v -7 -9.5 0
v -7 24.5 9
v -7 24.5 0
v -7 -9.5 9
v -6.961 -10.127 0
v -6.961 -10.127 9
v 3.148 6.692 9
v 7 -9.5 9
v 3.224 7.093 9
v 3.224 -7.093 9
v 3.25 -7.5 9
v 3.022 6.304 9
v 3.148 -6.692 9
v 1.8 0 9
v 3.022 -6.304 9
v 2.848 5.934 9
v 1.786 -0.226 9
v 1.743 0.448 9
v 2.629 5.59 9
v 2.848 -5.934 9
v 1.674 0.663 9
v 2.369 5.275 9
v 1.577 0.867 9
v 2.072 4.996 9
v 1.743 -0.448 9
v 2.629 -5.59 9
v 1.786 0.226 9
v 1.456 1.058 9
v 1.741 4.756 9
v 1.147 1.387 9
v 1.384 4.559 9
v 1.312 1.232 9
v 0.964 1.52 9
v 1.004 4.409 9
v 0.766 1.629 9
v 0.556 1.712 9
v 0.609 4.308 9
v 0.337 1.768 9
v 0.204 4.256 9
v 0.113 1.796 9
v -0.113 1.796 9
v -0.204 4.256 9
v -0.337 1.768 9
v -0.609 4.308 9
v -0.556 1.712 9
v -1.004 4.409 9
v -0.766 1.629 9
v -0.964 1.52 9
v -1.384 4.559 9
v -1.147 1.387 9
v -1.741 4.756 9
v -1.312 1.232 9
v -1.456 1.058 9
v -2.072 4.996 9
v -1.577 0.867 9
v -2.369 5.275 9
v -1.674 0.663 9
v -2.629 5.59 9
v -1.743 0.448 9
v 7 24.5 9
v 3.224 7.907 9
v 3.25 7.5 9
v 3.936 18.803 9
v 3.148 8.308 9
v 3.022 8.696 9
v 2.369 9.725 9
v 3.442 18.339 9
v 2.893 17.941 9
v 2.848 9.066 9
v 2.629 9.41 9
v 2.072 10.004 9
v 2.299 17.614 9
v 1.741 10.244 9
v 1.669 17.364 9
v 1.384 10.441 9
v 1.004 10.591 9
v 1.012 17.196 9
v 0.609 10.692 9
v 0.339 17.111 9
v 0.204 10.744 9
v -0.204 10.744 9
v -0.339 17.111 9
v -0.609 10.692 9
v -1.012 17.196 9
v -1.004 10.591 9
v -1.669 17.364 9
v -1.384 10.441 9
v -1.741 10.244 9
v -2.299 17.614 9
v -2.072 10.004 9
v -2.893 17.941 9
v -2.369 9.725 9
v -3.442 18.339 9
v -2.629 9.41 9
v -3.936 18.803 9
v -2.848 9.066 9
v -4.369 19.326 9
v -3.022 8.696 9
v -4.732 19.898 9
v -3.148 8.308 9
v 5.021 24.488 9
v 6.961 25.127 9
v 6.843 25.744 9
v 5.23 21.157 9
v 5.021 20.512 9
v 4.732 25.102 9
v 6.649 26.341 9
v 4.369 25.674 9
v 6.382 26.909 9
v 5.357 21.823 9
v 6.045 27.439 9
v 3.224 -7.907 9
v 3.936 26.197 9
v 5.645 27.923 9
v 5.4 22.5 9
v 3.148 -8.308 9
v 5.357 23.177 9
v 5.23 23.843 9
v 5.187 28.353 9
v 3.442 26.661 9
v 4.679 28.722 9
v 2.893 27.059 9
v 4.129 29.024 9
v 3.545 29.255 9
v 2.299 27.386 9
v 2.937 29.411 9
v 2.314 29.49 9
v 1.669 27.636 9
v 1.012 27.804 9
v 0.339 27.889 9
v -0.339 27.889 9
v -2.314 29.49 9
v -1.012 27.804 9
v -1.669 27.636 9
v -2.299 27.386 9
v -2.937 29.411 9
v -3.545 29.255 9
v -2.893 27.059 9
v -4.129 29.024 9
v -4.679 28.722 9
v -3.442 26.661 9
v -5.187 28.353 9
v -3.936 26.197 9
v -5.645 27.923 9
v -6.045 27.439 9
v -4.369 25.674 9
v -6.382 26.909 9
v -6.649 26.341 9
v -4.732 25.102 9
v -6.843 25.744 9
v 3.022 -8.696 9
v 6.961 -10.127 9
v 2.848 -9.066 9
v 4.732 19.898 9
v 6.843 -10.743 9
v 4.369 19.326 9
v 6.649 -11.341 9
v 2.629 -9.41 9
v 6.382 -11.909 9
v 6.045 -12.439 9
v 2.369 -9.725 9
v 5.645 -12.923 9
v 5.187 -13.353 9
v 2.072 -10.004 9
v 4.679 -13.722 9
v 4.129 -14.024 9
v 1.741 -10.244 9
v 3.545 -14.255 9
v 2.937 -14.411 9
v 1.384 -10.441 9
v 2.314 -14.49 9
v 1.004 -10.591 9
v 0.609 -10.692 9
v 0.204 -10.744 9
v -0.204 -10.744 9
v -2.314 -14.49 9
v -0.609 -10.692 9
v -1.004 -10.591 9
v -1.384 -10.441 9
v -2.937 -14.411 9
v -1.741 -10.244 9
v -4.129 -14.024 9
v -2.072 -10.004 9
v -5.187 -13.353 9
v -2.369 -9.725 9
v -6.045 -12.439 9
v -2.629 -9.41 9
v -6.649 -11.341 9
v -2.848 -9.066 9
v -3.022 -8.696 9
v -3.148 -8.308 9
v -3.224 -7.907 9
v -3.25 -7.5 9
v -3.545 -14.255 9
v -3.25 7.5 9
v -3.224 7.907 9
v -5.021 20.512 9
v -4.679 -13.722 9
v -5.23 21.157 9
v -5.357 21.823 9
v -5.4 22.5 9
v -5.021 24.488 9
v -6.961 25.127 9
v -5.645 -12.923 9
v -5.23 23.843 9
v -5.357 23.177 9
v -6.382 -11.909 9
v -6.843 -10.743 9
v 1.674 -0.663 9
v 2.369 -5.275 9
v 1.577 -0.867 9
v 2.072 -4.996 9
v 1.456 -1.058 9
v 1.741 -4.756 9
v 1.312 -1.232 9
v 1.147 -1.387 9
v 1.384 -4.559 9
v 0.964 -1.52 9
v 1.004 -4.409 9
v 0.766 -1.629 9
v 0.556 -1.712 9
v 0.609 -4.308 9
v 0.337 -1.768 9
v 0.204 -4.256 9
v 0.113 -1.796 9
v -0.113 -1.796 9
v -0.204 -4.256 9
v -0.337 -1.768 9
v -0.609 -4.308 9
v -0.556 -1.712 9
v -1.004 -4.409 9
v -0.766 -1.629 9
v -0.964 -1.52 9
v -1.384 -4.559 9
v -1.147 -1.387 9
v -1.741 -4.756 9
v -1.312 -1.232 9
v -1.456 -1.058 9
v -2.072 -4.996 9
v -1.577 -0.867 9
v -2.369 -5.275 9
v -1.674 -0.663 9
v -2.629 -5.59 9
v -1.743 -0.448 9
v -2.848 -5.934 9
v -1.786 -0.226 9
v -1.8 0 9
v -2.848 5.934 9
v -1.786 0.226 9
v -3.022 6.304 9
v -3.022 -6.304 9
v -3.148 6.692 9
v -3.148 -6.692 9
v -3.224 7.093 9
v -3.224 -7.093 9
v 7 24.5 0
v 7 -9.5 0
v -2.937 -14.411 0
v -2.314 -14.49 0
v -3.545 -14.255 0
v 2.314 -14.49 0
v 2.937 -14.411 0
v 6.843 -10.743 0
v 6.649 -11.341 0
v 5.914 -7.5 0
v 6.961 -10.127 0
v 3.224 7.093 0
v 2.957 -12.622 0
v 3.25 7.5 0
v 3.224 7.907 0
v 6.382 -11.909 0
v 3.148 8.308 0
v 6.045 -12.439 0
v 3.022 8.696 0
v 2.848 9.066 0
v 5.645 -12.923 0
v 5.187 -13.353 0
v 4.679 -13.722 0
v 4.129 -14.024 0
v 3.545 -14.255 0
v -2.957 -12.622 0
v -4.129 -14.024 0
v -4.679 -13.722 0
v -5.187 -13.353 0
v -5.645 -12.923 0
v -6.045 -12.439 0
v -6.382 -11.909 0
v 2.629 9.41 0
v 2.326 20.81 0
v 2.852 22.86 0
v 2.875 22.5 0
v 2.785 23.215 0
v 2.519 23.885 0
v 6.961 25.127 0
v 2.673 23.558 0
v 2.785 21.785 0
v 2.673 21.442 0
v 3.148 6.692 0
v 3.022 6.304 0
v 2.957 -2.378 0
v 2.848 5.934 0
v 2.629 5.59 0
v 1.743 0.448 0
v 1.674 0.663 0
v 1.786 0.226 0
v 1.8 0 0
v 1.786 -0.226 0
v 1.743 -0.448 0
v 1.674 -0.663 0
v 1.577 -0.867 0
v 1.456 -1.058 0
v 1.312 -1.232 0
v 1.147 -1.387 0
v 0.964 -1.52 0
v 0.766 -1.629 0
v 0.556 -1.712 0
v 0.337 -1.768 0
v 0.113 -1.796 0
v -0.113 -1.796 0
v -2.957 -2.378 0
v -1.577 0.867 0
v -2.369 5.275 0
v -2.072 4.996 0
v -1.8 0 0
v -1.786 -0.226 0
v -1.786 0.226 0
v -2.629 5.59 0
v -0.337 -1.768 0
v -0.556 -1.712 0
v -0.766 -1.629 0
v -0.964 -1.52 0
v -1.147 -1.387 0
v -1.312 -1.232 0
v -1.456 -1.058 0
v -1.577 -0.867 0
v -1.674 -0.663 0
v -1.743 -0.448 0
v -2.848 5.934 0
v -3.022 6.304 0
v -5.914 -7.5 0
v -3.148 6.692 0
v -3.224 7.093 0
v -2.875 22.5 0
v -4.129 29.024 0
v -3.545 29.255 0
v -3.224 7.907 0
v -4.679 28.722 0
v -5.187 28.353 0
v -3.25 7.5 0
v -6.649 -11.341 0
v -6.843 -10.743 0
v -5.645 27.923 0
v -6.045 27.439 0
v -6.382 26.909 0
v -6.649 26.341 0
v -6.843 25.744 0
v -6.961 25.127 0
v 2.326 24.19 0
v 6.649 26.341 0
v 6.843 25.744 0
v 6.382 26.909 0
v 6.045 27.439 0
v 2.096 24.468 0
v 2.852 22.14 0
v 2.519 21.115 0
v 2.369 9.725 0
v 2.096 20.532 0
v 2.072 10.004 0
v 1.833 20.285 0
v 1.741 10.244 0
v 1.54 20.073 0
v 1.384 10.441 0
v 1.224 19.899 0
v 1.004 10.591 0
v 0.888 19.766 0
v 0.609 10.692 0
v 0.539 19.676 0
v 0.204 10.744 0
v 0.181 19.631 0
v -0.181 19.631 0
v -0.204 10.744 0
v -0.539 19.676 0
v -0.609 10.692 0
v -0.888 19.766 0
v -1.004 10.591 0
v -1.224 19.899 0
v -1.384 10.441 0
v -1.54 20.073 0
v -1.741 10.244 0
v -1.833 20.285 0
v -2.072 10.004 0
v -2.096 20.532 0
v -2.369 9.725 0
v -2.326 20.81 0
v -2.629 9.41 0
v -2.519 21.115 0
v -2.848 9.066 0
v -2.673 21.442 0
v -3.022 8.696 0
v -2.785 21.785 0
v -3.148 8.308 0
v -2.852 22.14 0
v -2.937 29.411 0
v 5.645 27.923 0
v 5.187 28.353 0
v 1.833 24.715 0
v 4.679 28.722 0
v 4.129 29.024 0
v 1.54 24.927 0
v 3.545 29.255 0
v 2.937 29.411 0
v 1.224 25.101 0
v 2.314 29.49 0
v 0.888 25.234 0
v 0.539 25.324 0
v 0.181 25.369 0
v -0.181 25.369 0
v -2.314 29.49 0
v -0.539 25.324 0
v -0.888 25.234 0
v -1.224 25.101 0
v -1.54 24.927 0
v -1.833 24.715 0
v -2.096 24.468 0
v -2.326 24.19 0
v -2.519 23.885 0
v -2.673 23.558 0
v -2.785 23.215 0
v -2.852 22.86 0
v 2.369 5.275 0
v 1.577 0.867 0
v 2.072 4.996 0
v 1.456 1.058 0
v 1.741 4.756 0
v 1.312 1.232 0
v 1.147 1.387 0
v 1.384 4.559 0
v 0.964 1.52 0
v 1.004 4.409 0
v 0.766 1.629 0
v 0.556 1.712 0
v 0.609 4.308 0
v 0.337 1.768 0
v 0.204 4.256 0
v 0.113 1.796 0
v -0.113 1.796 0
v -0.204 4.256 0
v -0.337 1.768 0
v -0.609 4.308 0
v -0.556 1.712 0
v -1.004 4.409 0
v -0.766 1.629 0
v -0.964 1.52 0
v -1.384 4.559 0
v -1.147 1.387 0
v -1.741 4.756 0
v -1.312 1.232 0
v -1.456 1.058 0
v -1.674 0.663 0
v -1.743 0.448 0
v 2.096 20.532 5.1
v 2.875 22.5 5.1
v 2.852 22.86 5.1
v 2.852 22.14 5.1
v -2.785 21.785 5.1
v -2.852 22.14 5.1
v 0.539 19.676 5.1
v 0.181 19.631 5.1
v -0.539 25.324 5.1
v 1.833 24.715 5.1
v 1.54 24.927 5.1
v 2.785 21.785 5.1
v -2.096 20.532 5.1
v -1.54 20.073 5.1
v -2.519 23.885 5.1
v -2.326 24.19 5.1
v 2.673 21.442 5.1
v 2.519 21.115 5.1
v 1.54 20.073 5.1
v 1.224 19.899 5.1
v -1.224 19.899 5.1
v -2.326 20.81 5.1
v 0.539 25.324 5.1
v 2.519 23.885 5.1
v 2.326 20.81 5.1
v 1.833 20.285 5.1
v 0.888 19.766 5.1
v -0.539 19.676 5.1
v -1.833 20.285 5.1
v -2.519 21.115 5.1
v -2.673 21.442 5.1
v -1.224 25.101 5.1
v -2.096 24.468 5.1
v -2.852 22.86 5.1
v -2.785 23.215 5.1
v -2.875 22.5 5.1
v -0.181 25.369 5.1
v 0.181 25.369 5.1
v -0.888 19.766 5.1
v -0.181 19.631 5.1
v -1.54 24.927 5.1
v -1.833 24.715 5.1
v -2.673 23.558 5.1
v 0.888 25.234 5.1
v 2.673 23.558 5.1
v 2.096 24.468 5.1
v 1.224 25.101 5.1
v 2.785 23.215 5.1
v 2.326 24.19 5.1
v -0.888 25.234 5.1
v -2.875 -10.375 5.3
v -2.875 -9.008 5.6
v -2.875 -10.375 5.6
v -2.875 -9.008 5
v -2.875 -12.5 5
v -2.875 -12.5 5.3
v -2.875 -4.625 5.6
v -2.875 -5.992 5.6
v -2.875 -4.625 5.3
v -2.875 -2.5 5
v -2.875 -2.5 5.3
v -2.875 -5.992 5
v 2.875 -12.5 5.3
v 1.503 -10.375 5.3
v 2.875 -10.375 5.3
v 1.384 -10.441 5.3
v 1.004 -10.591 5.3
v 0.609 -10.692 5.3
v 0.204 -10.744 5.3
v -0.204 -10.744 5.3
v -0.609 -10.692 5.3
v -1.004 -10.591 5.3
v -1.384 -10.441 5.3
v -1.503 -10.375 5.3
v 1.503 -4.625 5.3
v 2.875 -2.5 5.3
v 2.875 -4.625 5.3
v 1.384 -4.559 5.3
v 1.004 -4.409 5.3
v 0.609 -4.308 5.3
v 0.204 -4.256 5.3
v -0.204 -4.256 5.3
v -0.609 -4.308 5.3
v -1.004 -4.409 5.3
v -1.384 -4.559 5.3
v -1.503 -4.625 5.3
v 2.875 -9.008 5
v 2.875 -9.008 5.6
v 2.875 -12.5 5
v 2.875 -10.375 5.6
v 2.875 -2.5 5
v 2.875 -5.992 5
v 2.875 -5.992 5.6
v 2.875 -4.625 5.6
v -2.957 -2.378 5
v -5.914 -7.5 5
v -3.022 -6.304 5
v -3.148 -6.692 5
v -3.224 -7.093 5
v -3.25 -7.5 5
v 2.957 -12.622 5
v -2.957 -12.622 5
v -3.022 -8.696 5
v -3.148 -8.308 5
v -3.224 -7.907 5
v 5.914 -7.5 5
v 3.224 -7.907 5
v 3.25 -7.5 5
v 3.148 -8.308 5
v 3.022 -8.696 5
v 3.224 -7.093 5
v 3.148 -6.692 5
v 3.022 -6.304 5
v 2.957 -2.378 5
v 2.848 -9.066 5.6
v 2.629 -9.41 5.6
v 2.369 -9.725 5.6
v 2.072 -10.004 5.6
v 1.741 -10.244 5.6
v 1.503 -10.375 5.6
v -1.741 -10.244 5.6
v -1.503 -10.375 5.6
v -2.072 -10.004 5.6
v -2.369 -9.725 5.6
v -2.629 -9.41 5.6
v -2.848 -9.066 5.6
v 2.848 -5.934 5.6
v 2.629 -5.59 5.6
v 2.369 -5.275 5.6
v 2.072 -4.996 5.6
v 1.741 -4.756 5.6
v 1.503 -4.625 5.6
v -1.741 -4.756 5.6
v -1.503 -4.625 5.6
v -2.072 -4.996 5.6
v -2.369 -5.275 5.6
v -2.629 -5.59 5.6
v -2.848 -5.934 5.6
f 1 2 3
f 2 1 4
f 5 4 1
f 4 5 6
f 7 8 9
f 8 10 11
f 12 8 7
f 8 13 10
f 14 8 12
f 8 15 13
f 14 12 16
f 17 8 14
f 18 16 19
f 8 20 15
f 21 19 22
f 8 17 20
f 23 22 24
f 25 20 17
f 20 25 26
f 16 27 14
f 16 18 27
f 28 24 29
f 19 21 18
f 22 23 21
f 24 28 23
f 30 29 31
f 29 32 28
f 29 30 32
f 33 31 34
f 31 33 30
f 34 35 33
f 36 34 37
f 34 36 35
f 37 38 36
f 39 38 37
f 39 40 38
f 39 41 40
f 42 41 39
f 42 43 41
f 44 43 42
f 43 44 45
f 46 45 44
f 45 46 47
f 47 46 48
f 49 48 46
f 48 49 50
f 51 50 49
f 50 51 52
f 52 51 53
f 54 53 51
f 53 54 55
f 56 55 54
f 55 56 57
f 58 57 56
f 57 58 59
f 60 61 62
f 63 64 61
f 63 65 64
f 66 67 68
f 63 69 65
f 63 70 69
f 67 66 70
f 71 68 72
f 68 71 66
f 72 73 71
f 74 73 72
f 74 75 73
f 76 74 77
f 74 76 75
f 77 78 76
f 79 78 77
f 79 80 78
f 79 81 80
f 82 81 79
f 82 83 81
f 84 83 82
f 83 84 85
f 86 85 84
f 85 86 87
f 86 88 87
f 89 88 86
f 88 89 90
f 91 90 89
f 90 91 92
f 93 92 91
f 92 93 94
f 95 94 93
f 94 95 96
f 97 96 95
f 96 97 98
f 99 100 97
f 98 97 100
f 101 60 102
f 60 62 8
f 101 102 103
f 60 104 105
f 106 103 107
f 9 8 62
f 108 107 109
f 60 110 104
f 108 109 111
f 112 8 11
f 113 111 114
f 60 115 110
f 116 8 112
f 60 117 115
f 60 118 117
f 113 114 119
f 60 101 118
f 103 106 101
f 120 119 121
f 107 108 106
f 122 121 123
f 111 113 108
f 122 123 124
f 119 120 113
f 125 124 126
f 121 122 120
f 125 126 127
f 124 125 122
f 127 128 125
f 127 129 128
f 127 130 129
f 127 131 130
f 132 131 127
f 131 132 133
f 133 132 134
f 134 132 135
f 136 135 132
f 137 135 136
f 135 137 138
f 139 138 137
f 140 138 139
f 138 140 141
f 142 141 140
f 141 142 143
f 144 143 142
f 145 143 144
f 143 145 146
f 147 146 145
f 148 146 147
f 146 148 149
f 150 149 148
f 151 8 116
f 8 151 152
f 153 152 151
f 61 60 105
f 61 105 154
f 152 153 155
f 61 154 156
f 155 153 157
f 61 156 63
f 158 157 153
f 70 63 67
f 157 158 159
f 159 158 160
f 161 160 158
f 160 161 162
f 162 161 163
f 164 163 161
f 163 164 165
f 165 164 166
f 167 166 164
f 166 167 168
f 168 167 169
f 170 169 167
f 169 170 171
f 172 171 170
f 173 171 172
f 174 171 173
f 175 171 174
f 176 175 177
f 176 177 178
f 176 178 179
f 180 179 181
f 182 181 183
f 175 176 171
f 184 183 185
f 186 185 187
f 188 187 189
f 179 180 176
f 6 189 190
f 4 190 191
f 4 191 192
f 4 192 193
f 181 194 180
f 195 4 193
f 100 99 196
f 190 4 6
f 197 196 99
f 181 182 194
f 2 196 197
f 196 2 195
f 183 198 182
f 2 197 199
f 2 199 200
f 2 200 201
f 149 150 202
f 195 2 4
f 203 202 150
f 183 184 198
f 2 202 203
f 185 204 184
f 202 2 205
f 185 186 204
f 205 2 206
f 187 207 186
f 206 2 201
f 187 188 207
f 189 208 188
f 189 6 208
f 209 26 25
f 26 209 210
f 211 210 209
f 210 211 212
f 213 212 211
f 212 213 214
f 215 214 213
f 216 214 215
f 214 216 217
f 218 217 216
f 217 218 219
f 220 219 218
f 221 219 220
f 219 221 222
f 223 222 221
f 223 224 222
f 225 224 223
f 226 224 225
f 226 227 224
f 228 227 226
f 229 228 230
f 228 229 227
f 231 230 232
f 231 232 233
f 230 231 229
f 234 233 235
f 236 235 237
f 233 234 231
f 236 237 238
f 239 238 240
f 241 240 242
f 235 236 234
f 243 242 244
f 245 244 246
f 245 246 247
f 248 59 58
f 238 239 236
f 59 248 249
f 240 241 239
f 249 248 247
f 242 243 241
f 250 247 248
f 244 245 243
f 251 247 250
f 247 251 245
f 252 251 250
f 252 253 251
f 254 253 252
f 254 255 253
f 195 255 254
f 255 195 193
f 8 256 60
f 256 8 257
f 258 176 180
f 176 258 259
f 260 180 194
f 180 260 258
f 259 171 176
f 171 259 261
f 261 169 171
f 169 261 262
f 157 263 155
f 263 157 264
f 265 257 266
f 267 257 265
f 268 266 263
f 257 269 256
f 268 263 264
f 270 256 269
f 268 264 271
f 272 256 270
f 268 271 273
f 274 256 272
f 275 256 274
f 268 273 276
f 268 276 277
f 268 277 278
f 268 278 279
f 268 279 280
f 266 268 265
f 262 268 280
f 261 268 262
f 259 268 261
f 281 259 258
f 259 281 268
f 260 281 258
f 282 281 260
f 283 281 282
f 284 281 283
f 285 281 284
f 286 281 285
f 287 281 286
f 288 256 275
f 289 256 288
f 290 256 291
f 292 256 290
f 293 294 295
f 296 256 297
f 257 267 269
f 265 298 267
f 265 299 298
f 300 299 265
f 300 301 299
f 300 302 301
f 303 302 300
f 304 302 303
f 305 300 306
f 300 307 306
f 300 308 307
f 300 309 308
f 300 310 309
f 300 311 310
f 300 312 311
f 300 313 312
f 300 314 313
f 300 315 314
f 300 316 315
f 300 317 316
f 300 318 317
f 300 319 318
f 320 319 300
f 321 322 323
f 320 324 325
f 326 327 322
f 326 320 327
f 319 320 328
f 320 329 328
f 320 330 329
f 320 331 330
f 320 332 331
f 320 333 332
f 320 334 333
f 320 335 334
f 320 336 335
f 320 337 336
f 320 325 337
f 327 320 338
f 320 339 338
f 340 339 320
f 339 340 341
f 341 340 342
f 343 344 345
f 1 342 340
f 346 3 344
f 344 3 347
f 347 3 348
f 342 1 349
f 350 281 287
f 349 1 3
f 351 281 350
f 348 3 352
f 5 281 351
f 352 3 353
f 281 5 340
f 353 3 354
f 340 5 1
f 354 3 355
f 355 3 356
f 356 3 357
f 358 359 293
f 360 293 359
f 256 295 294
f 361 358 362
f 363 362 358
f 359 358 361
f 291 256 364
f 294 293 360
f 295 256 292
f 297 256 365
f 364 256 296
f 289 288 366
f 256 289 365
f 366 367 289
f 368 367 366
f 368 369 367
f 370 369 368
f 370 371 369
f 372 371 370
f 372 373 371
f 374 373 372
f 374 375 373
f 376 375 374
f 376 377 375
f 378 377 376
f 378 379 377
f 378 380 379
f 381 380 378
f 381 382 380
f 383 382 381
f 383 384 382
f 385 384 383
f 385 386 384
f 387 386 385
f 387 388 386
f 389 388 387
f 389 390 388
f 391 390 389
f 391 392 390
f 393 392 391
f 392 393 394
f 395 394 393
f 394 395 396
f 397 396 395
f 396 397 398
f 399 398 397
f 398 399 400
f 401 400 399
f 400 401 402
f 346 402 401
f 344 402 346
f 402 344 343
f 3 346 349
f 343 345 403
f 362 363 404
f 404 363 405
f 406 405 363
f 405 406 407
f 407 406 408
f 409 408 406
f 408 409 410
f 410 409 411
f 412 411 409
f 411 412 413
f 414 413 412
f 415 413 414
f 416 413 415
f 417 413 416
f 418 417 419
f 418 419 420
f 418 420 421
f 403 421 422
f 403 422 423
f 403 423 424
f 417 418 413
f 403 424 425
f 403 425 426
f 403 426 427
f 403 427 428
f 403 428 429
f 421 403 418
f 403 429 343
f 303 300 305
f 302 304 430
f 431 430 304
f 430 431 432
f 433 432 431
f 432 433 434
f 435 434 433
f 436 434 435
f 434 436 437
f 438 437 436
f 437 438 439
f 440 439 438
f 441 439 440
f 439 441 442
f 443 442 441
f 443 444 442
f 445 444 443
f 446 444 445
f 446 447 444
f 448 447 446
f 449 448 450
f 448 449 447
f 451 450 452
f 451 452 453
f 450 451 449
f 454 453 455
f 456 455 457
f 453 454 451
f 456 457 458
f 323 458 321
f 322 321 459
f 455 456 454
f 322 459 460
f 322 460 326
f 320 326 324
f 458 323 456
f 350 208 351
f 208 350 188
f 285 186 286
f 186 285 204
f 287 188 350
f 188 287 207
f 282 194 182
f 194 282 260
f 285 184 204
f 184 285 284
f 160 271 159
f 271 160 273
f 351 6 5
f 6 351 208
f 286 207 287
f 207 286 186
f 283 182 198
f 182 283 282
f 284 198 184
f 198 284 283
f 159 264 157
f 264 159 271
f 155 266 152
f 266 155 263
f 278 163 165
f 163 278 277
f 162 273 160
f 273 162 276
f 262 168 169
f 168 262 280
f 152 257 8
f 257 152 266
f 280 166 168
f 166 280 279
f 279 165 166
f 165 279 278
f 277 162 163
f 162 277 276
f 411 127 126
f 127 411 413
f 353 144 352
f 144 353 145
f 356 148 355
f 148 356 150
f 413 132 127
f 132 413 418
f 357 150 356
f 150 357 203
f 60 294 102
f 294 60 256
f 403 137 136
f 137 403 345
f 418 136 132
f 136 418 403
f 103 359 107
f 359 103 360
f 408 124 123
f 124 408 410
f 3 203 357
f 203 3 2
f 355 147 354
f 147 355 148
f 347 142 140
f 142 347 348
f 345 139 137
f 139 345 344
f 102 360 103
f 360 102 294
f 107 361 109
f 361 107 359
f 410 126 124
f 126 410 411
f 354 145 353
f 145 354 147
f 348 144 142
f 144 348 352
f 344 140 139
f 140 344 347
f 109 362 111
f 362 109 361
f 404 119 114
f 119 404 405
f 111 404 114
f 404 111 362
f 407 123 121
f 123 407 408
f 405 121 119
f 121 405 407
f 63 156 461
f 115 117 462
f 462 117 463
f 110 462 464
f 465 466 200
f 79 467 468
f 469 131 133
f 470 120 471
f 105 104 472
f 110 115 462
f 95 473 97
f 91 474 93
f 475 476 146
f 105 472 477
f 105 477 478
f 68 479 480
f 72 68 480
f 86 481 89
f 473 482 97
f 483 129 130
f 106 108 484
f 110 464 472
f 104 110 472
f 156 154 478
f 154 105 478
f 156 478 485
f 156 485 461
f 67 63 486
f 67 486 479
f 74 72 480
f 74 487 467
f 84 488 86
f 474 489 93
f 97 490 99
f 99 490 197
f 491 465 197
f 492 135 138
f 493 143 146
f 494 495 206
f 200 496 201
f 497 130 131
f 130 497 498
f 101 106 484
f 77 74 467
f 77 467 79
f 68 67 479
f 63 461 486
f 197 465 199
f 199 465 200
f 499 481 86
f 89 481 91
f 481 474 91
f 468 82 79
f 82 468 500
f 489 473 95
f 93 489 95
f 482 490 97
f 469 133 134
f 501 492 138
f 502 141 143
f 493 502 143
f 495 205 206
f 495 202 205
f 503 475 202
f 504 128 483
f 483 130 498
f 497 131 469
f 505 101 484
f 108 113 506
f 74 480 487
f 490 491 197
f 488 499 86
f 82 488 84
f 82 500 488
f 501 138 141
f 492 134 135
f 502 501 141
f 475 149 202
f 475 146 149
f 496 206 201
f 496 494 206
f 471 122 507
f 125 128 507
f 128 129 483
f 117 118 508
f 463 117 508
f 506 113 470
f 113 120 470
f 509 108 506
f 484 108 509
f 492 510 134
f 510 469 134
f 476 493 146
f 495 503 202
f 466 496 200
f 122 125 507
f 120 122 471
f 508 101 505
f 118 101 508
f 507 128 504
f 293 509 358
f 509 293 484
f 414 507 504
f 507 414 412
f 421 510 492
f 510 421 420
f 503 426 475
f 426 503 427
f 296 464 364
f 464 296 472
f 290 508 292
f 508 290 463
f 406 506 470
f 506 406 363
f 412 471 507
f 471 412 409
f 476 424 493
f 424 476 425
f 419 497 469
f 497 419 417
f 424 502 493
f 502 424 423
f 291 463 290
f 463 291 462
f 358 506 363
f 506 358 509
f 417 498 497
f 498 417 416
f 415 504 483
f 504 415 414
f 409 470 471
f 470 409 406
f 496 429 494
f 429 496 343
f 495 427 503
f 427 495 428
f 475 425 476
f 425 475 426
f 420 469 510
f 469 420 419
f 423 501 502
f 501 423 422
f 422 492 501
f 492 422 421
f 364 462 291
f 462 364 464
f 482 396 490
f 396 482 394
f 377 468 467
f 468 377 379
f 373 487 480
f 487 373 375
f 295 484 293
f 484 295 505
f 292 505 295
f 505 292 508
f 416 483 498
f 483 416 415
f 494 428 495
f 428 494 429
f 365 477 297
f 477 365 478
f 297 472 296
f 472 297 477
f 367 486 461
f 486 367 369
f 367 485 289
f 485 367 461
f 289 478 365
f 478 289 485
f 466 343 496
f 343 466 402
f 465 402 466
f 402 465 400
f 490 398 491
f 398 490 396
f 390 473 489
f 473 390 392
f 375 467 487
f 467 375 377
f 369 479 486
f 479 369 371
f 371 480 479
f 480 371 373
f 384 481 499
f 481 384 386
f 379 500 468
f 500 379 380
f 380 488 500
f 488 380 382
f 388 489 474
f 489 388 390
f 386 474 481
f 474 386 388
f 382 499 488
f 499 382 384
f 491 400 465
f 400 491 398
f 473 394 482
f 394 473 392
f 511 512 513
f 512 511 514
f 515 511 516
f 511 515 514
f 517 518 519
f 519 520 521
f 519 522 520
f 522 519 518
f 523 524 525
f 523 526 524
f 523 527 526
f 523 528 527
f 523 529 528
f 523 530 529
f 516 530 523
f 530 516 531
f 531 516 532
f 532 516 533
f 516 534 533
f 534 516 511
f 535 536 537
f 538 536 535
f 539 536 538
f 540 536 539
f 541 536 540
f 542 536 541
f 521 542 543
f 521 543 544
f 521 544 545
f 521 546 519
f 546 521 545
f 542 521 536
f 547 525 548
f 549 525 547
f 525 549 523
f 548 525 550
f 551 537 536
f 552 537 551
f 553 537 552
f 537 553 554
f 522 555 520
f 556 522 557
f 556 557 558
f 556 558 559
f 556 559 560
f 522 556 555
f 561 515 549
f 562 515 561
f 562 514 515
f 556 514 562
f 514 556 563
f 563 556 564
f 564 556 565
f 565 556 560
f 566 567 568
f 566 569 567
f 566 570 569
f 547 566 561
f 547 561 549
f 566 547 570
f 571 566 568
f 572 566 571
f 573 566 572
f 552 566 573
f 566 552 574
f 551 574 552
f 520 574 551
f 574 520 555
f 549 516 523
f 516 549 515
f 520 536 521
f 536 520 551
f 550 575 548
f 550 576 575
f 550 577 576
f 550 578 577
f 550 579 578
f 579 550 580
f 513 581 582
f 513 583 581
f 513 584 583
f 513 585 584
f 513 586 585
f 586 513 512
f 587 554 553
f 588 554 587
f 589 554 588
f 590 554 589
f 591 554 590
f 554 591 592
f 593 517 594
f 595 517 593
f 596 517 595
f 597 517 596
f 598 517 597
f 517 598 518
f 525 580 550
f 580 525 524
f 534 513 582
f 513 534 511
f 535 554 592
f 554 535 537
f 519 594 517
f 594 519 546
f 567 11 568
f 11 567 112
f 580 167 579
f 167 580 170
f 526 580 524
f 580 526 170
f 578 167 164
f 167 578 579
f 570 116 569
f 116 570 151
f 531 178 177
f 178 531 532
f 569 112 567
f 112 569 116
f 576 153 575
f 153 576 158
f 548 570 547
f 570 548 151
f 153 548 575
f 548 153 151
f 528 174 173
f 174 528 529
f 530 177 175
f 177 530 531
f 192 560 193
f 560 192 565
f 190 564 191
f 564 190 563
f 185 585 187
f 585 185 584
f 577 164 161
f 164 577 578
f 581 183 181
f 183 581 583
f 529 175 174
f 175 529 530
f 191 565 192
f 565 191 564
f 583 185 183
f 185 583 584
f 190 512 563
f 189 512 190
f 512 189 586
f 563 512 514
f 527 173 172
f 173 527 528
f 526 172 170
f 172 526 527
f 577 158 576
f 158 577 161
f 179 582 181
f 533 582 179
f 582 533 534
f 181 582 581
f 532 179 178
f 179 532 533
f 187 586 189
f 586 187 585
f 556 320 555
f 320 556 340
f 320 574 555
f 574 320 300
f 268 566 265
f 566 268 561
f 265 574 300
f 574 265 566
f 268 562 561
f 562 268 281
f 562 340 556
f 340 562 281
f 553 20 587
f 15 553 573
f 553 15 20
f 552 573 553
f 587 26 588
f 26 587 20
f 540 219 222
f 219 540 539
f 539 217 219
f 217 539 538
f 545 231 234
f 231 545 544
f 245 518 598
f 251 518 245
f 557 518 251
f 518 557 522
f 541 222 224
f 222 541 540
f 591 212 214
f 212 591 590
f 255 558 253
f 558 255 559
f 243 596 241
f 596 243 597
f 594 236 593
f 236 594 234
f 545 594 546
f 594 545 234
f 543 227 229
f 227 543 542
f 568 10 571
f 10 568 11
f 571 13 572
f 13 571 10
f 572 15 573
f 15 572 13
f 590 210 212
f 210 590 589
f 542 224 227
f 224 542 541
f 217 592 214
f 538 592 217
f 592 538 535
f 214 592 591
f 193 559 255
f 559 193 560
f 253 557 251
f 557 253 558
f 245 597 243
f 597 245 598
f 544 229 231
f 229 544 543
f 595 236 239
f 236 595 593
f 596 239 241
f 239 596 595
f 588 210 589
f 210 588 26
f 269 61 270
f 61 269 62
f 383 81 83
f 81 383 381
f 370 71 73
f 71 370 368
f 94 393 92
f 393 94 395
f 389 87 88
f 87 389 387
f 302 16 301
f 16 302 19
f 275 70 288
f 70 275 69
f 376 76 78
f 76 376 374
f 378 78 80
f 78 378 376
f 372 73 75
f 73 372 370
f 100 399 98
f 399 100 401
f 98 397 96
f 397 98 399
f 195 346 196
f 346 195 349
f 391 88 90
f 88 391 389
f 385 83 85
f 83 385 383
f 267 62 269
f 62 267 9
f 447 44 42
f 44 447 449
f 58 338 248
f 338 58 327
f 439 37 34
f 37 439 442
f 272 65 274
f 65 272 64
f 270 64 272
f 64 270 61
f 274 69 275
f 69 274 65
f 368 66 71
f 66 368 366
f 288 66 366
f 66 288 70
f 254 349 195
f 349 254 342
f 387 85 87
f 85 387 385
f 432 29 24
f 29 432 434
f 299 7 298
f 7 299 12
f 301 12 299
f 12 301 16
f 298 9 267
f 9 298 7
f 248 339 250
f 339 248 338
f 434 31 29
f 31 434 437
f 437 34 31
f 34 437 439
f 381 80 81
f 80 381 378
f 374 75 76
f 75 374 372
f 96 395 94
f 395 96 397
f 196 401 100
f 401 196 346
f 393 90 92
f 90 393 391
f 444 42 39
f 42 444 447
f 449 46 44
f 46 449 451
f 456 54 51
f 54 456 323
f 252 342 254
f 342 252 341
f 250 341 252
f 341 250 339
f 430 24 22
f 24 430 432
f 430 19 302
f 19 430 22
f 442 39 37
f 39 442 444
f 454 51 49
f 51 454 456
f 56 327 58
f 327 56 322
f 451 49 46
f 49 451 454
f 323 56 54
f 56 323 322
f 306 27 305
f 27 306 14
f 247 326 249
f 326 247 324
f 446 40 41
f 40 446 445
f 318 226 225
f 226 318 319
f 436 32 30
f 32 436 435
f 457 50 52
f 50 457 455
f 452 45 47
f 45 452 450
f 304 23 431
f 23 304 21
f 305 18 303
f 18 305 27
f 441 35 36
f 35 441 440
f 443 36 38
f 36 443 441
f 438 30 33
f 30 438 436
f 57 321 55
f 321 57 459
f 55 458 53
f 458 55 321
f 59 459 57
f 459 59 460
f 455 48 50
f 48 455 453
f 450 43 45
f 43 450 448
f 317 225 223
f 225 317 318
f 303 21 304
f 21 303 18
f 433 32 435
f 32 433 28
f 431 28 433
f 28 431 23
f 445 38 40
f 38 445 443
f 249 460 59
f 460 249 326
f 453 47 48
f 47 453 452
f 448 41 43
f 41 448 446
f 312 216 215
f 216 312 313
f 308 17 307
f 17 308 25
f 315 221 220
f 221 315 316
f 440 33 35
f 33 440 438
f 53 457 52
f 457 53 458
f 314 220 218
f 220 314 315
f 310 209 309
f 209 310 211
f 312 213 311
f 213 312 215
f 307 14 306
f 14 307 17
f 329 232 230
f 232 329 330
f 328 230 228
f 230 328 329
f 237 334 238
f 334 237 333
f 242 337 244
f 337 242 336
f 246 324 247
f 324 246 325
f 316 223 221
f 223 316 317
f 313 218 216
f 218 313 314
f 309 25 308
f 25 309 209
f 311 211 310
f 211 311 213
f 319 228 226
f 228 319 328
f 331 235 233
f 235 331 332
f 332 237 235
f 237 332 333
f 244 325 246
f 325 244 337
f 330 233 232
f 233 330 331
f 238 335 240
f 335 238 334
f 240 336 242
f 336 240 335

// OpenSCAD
$fn = 50;


difference() {
	union() {
		hull() {
			translate(v = [-2.0000000000, 9.5000000000, 0]) {
				cylinder(h = 9, r = 5);
			}
			translate(v = [2.0000000000, 9.5000000000, 0]) {
				cylinder(h = 9, r = 5);
			}
			translate(v = [-2.0000000000, -9.5000000000, 0]) {
				cylinder(h = 9, r = 5);
			}
			translate(v = [2.0000000000, -9.5000000000, 0]) {
				cylinder(h = 9, r = 5);
			}
		}
		translate(v = [0.0000000000, 15.0000000000, 0]) {
			hull() {
				translate(v = [-2.0000000000, 9.5000000000, 0]) {
					cylinder(h = 9, r = 5);
				}
				translate(v = [2.0000000000, 9.5000000000, 0]) {
					cylinder(h = 9, r = 5);
				}
				translate(v = [-2.0000000000, -9.5000000000, 0]) {
					cylinder(h = 9, r = 5);
				}
				translate(v = [2.0000000000, -9.5000000000, 0]) {
					cylinder(h = 9, r = 5);
				}
			}
		}
		translate(v = [0.0000000000, 15.0000000000, 0]) {
			hull() {
				translate(v = [-2.0000000000, 9.5000000000, 0]) {
					cylinder(h = 9, r = 5);
				}
				translate(v = [2.0000000000, 9.5000000000, 0]) {
					cylinder(h = 9, r = 5);
				}
				translate(v = [-2.0000000000, -9.5000000000, 0]) {
					cylinder(h = 9, r = 5);
				}
				translate(v = [2.0000000000, -9.5000000000, 0]) {
					cylinder(h = 9, r = 5);
				}
			}
		}
	}
	union() {
		translate(v = [0.0000000000, 22.5000000000, 9]) {
			rotate(a = [0, 0, 0]) {
				difference() {
					union() {
						#translate(v = [0, 0, -9.0000000000]) {
							cylinder(h = 9, r = 2.6000000000);
						}
						#translate(v = [0, 0, -3.9000000000]) {
							cylinder(h = 3.9000000000, r1 = 2.8750000000, r2 = 5.4000000000);
						}
						#translate(v = [0, 0, -9.0000000000]) {
							cylinder(h = 9, r = 2.8750000000);
						}
						#translate(v = [0, 0, -9.0000000000]) {
							cylinder(h = 9, r = 2.6000000000);
						}
					}
					union();
				}
			}
		}
		translate(v = [0.0000000000, 22.5000000000, 9]) {
			rotate(a = [0, 0, 0]) {
				difference() {
					union() {
						#translate(v = [0, 0, -9.0000000000]) {
							cylinder(h = 9, r = 2.6000000000);
						}
						#translate(v = [0, 0, -3.9000000000]) {
							cylinder(h = 3.9000000000, r1 = 2.8750000000, r2 = 5.4000000000);
						}
						#translate(v = [0, 0, -9.0000000000]) {
							cylinder(h = 9, r = 2.8750000000);
						}
						#translate(v = [0, 0, -9.0000000000]) {
							cylinder(h = 9, r = 2.6000000000);
						}
					}
					union();
				}
			}
		}
		translate(v = [0.0000000000, -7.5000000000, 0]) {
			rotate(a = [0, 0, 0]) {
				difference() {
					union() {
						#translate(v = [-2.8750000000, -5.0000000000, -0.3000000000]) {
							cube(size = [5.7500000000, 10, 0.3000000000]);
						}
						#translate(v = [-2.8750000000, -2.8750000000, -0.6000000000]) {
							cube(size = [5.7500000000, 5.7500000000, 0.3000000000]);
						}
						#translate(v = [-2.8750000000, -5.0000000000, 5]) {
							cube(size = [5.7500000000, 10, 0.3000000000]);
						}
						#translate(v = [-2.8750000000, -2.8750000000, 5.3000000000]) {
							cube(size = [5.7500000000, 5.7500000000, 0.3000000000]);
						}
						#translate(v = [0, 0, -100.0000000000]) {
							cylinder(h = 200, r = 3.2500000000);
						}
						#linear_extrude(height = 5) {
							polygon(points = [[5.9142500000, 0.0000000000], [2.9571250000, 5.1218907443], [-2.9571250000, 5.1218907443], [-5.9142500000, 0.0000000000], [-2.9571250000, -5.1218907443], [2.9571250000, -5.1218907443]]);
						}
						#translate(v = [-2.8750000000, -5.0000000000, -0.3000000000]) {
							cube(size = [5.7500000000, 10, 0.3000000000]);
						}
						#translate(v = [-2.8750000000, -2.8750000000, -0.6000000000]) {
							cube(size = [5.7500000000, 5.7500000000, 0.3000000000]);
						}
						#translate(v = [-2.8750000000, -5.0000000000, 5]) {
							cube(size = [5.7500000000, 10, 0.3000000000]);
						}
						#translate(v = [-2.8750000000, -2.8750000000, 5.3000000000]) {
							cube(size = [5.7500000000, 5.7500000000, 0.3000000000]);
						}
						#translate(v = [0, 0, -100.0000000000]) {
							cylinder(h = 200, r = 3.2500000000);
						}
						#translate(v = [-2.8750000000, -5.0000000000, -0.3000000000]) {
							cube(size = [5.7500000000, 10, 0.3000000000]);
						}
						#translate(v = [-2.8750000000, -2.8750000000, -0.6000000000]) {
							cube(size = [5.7500000000, 5.7500000000, 0.3000000000]);
						}
						#translate(v = [-2.8750000000, -5.0000000000, 5]) {
							cube(size = [5.7500000000, 10, 0.3000000000]);
						}
						#translate(v = [-2.8750000000, -2.8750000000, 5.3000000000]) {
							cube(size = [5.7500000000, 5.7500000000, 0.3000000000]);
						}
						#translate(v = [0, 0, -100.0000000000]) {
							cylinder(h = 200, r = 3.2500000000);
						}
					}
					union();
				}
			}
		}
		translate(v = [0.0000000000, -7.5000000000, 0]) {
			translate(v = [0, 0, -100]) {
				cylinder(h = 200, r = 3.2500000000);
			}
		}
		translate(v = [0.0000000000, 7.5000000000, 0]) {
			translate(v = [0, 0, -100]) {
				cylinder(h = 200, r = 3.2500000000);
			}
		}
		translate(v = [0.0000000000, -7.5000000000, 0]) {
			translate(v = [0, 0, -100]) {
				cylinder(h = 200, r = 1.8000000000);
			}
		}
		translate(v = [0, 0, -100]) {
			cylinder(h = 200, r = 1.8000000000);
		}
		translate(v = [0.0000000000, 7.5000000000, 0]) {
			translate(v = [0, 0, -100]) {
				cylinder(h = 200, r = 1.8000000000);
			}
		}
	}
}
